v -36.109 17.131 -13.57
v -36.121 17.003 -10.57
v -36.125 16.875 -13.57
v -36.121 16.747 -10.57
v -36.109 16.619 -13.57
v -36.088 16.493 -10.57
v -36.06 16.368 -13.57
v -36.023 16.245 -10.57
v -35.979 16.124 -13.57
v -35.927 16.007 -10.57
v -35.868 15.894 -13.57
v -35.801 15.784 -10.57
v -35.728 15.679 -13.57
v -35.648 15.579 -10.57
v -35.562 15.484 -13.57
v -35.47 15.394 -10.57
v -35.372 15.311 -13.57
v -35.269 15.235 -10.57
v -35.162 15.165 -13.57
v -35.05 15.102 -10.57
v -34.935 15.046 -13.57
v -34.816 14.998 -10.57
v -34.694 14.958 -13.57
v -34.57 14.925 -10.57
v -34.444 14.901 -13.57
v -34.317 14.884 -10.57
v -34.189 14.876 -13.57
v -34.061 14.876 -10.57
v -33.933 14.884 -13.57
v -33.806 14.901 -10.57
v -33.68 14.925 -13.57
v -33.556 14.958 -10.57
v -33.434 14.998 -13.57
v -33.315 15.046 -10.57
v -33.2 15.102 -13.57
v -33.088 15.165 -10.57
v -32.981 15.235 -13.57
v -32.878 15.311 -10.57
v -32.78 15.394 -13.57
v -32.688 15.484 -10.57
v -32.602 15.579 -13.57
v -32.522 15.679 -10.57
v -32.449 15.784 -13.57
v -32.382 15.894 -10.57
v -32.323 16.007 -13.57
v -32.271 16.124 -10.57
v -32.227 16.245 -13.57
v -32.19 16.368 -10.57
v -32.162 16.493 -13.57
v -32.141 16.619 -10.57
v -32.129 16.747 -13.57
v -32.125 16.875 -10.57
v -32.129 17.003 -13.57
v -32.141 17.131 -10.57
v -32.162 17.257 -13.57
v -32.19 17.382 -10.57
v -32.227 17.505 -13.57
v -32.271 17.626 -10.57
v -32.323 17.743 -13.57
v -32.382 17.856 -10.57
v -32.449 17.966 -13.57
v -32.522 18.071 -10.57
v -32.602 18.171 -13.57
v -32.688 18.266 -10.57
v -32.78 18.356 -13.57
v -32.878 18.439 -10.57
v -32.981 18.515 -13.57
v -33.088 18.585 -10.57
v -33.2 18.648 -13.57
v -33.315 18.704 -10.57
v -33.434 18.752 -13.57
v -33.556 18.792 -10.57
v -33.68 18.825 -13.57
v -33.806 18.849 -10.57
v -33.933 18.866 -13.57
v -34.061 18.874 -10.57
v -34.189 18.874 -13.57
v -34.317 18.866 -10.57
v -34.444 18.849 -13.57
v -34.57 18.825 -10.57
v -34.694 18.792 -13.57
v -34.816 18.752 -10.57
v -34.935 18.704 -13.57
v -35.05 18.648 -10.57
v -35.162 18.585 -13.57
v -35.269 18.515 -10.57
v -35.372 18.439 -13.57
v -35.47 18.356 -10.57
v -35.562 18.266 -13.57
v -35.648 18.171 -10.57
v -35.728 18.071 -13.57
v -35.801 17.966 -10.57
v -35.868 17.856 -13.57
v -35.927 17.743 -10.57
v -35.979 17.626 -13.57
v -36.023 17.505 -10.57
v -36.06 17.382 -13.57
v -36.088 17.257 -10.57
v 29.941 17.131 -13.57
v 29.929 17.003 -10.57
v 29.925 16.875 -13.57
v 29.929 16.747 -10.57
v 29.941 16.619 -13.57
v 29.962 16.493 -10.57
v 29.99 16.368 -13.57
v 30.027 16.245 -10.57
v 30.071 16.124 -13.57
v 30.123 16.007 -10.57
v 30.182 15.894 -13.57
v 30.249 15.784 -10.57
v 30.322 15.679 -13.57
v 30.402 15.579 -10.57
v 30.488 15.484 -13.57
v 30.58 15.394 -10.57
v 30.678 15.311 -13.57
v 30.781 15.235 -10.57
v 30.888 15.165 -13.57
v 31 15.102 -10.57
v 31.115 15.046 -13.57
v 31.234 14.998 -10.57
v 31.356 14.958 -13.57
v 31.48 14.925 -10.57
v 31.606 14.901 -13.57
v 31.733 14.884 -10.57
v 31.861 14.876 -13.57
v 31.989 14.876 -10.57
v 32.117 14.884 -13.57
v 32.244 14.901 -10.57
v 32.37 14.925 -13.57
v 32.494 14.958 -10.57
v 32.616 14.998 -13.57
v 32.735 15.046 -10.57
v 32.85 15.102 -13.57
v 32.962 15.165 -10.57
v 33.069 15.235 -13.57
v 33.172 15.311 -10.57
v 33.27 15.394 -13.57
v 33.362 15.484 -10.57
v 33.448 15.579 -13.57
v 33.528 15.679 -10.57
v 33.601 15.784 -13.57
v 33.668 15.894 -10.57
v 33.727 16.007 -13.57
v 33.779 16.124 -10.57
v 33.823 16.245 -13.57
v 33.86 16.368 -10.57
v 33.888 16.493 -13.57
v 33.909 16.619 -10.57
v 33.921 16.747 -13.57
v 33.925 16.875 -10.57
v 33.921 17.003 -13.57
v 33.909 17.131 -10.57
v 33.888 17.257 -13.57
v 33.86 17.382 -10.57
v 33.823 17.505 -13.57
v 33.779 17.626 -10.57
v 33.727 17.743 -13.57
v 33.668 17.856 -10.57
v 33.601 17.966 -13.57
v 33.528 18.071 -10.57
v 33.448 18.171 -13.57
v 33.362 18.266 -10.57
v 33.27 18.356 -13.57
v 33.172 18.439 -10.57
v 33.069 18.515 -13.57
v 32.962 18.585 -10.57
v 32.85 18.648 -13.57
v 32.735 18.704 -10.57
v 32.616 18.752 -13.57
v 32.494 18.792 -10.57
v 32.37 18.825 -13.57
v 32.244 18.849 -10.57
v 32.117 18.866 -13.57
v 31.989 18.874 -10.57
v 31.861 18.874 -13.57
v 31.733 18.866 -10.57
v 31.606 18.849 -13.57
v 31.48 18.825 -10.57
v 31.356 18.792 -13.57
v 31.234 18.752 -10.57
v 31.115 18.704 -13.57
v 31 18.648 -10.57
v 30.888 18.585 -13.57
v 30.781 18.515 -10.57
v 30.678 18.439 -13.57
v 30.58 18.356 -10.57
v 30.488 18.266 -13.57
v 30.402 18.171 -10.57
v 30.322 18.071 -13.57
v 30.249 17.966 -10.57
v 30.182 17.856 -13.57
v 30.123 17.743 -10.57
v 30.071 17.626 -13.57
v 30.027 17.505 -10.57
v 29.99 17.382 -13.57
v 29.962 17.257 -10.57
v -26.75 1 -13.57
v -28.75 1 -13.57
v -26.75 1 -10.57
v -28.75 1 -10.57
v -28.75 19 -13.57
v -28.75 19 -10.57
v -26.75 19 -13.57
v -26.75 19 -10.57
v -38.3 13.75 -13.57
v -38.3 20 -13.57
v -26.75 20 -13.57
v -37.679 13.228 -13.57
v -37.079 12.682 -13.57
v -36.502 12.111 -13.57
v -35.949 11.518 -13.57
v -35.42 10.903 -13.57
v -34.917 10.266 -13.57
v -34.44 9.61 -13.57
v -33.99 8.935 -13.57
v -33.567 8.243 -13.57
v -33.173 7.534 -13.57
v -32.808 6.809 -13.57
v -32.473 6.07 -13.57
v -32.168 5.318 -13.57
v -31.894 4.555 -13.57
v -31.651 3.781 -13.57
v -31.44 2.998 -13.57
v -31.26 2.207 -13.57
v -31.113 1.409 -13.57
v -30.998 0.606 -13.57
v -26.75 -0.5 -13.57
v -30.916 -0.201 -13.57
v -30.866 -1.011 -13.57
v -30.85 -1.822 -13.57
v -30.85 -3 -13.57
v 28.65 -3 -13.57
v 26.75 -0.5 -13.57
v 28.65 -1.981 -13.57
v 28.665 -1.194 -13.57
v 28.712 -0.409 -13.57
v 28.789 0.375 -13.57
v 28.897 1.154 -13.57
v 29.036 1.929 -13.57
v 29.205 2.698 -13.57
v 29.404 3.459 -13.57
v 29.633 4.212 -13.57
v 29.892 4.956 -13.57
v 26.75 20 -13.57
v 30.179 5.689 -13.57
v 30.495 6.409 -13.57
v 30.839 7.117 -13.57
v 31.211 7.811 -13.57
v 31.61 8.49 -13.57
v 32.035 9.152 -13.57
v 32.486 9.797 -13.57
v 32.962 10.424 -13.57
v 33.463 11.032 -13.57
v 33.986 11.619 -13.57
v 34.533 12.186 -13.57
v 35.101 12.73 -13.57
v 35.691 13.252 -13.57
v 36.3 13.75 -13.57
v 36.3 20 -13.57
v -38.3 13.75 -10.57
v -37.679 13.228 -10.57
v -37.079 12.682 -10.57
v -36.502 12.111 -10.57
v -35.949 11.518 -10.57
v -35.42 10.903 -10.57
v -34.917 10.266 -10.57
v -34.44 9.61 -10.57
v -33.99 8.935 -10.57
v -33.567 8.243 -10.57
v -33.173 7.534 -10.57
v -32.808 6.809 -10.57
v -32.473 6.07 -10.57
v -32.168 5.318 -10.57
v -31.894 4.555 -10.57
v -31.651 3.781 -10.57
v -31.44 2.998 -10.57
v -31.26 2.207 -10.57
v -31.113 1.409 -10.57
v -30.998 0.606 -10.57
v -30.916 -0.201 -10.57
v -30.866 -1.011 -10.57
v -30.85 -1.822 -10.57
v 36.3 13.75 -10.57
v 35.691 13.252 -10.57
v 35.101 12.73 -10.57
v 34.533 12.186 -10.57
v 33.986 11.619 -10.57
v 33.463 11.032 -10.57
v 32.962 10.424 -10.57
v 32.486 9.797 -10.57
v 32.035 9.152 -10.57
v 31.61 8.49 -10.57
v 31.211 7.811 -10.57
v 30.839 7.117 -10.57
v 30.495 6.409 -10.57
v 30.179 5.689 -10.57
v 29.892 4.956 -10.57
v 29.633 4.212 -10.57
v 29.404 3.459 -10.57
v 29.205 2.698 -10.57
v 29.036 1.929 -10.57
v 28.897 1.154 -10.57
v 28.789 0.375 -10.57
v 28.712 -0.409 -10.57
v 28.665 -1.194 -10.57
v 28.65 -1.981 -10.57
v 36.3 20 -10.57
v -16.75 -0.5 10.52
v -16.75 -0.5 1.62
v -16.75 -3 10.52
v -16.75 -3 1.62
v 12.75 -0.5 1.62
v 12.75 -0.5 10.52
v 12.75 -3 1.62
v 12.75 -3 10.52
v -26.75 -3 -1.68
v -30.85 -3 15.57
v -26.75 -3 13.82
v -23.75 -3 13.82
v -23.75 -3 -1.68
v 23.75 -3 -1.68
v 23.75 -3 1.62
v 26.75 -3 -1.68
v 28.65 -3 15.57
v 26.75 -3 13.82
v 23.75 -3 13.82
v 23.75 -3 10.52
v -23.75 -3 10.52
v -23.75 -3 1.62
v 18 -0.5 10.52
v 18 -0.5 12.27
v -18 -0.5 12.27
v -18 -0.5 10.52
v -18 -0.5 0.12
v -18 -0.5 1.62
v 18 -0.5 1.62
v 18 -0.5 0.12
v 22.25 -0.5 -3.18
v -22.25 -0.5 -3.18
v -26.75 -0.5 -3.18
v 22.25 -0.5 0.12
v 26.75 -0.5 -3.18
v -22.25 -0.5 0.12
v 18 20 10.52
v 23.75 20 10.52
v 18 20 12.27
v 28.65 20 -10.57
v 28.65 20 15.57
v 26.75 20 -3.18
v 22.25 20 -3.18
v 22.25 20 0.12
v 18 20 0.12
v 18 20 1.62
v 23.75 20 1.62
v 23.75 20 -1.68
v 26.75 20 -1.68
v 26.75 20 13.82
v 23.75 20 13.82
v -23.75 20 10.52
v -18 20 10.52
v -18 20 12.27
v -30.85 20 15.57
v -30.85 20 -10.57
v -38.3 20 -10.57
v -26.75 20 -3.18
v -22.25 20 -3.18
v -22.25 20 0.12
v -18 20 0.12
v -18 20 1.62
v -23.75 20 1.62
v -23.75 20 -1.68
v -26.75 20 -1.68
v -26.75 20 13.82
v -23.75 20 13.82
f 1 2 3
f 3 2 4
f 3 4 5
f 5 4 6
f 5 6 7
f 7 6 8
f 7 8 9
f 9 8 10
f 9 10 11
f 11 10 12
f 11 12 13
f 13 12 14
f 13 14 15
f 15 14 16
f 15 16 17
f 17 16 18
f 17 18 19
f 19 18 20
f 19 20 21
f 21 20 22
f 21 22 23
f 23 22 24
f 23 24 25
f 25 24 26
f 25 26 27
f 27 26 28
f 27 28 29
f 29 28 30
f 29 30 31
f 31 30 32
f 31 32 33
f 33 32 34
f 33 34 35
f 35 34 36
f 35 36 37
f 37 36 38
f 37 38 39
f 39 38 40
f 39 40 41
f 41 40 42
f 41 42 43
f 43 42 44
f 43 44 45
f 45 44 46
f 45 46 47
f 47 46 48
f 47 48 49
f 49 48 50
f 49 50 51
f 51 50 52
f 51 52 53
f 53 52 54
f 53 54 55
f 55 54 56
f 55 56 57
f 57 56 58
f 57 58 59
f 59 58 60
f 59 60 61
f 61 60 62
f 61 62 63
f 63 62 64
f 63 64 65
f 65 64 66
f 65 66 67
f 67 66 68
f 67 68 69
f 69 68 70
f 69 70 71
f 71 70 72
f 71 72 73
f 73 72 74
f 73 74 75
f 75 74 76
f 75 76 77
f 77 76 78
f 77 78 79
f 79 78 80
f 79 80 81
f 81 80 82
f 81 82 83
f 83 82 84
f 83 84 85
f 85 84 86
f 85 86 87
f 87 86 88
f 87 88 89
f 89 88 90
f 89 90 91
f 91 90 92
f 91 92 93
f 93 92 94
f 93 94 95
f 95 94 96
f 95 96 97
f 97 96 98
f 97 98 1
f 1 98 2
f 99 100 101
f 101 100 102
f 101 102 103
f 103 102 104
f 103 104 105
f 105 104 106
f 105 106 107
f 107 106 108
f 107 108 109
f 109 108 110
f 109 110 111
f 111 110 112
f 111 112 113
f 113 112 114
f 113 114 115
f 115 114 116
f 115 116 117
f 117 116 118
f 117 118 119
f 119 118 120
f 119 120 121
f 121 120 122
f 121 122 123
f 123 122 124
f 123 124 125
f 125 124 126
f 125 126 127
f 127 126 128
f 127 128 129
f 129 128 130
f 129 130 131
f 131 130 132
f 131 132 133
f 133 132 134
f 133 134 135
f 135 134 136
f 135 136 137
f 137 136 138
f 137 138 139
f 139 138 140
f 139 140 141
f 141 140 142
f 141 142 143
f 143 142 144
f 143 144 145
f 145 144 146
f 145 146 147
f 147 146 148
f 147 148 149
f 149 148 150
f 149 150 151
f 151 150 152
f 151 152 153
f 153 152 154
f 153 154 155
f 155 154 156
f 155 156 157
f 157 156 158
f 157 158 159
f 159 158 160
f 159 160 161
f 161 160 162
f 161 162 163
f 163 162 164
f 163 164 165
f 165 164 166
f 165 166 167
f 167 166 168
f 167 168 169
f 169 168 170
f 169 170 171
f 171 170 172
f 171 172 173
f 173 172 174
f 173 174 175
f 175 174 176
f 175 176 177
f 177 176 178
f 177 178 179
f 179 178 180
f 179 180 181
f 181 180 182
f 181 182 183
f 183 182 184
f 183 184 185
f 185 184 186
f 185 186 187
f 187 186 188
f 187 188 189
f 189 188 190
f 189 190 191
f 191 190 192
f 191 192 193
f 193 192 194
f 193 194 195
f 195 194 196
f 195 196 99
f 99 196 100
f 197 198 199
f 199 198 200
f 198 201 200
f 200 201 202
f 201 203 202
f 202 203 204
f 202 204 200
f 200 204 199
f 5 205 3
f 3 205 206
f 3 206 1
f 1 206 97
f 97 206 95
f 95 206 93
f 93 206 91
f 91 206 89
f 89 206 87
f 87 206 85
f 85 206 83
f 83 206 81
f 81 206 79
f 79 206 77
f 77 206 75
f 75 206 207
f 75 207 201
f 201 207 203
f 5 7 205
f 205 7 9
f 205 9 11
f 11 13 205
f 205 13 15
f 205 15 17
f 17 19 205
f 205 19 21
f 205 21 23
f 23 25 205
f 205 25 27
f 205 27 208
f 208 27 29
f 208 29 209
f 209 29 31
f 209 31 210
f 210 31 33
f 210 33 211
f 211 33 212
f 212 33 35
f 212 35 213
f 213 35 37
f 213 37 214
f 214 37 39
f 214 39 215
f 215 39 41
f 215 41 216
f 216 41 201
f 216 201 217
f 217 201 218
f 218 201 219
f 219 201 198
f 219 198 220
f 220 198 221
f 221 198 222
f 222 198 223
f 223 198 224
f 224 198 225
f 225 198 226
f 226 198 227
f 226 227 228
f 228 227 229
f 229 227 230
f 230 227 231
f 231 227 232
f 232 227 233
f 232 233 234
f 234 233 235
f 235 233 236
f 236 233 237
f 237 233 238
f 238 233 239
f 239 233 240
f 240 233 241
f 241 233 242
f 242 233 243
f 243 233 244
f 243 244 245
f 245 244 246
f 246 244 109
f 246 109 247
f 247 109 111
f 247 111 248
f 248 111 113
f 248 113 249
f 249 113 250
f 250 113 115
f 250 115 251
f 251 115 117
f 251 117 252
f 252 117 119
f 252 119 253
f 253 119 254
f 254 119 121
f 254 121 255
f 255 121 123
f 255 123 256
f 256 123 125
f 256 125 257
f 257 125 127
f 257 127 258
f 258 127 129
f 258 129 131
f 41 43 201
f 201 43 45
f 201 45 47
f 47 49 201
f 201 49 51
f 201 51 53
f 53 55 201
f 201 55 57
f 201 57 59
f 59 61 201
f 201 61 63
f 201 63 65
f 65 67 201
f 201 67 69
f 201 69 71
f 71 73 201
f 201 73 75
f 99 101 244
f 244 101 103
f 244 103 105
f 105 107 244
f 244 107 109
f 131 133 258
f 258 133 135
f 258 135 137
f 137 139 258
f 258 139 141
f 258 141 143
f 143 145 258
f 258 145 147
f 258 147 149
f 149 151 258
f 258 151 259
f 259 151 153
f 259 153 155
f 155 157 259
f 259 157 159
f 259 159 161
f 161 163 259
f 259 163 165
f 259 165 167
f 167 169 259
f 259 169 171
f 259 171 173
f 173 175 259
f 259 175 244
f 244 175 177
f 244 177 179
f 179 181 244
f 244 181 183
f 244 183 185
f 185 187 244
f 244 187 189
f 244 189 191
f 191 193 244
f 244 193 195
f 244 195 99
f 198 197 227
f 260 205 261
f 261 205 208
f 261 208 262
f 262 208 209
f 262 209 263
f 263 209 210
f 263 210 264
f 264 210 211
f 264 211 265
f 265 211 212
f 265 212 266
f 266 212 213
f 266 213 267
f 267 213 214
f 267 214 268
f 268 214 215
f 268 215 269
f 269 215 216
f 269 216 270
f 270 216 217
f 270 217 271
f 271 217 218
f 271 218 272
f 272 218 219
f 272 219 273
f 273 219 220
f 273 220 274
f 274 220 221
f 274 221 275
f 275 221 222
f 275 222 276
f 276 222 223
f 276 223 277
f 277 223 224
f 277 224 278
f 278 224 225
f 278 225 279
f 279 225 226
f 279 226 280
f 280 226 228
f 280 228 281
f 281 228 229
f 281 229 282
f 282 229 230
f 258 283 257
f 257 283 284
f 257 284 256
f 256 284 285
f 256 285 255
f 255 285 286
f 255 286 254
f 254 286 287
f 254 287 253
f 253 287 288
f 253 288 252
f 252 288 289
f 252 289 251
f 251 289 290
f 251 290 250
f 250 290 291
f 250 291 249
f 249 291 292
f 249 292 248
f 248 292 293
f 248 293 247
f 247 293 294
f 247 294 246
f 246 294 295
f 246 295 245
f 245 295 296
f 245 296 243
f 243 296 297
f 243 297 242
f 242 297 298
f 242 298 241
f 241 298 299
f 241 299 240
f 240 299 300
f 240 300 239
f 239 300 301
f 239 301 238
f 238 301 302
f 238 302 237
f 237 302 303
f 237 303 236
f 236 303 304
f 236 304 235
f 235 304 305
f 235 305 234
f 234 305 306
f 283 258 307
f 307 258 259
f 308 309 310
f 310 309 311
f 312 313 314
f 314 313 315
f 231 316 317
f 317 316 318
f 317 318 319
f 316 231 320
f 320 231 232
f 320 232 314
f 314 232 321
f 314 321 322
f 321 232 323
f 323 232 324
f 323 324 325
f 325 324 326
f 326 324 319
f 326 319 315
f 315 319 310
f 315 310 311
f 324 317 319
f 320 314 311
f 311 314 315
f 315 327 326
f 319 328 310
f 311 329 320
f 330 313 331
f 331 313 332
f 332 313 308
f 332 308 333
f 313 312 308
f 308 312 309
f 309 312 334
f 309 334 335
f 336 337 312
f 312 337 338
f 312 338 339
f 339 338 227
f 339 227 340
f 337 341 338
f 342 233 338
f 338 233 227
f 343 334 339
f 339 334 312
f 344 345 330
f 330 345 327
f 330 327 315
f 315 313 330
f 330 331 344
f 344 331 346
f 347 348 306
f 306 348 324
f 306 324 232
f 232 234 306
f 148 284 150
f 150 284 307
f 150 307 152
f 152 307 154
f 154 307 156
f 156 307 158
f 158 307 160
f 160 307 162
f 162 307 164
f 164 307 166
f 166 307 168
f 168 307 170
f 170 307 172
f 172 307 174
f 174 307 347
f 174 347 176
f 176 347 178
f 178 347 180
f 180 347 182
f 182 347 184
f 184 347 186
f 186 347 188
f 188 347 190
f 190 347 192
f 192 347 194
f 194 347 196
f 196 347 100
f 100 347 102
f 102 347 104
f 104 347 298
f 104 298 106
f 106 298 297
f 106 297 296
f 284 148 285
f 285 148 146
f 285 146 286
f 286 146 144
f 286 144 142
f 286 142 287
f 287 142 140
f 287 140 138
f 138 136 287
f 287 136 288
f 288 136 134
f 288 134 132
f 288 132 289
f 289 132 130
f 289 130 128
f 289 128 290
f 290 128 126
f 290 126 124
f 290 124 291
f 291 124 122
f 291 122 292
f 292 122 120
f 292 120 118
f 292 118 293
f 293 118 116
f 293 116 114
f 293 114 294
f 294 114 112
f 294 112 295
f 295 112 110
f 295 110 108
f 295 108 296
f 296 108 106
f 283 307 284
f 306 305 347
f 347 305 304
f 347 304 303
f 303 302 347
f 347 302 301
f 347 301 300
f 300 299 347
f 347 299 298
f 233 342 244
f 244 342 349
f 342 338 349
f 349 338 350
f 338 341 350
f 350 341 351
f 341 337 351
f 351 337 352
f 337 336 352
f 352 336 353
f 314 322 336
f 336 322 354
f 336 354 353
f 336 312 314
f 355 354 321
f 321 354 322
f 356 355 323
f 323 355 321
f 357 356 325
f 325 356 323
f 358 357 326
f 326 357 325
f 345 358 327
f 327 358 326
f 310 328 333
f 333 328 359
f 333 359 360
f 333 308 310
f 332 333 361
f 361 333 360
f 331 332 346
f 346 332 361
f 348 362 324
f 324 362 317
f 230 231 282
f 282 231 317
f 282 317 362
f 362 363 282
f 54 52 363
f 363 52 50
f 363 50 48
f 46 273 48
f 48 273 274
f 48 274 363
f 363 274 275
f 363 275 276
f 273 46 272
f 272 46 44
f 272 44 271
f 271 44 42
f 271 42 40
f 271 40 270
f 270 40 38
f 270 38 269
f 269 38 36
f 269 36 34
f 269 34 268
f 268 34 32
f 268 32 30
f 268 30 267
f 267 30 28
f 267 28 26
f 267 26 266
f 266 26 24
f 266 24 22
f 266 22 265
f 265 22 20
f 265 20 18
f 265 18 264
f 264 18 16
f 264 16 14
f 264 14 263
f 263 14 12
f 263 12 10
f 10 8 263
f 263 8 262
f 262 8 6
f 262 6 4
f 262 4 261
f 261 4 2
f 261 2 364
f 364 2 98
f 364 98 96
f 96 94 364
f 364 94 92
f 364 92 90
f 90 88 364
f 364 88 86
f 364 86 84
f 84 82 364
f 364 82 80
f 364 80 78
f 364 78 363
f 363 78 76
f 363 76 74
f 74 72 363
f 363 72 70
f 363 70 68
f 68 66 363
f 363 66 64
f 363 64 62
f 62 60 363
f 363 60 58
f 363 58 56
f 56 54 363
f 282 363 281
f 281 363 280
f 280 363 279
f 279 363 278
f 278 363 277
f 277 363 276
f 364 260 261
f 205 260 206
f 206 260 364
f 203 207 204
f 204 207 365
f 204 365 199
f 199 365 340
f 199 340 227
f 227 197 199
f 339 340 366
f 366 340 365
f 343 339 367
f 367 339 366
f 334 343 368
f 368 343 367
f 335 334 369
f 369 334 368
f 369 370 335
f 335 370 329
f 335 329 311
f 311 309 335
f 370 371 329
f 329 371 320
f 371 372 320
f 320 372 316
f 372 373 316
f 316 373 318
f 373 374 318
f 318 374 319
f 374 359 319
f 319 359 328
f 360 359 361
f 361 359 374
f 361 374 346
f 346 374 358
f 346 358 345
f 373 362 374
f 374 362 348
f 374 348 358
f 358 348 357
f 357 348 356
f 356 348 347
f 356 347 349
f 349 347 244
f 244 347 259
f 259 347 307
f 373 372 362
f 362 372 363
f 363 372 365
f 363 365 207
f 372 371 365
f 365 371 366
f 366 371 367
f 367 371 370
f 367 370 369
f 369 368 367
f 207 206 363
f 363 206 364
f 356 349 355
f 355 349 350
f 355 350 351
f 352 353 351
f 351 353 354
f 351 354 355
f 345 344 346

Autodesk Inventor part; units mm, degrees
ref_plane "YZ Plane" through (0, 0, 0) normal (1, 0, 0) x (0, 1, 0)
ref_plane "XZ Plane" through (0, 0, 0) normal (0, 1, 0) x (-1, 0, 0)
ref_plane "XY Plane" through (0, 0, 0) normal (0, 0, 1) x (1, 0, 0)
sketch "Boceto1" plane through (0, 0, 0) normal (0, 1, 0) x (-1, 0, 0)
  line L0 (24, 13.57) -> (26.5, 13.57)
  line L1 (-26.5, 13.57) -> (26.5, -13.57) construction
  line L2 (26.5, 13.57) -> (-26.5, -13.57) construction
  line L3 (24, 13.57) -> (24, 10.27) construction
  line L4 (24, 10.27) -> (20, 10.27) construction
  line L5 (20, 10.27) -> (20, 1.87) construction
  line L6 (20, 1.87) -> (24, 1.87) construction
  line L7 (24, 1.87) -> (24, -1.43) construction
  line L8 (24, -1.43) -> (26.5, -1.43) construction
  line L9 (26.75, -1.68) -> (23.75, -1.68)
  line L10 (23.75, -1.68) -> (23.75, 1.62)
  line L11 (23.75, 1.62) -> (19.5, 1.62)
  line L12 (19.5, 10.52) -> (23.75, 10.52)
  line L13 (23.75, 10.52) -> (23.75, 13.82)
  line L14 (27, 15.57) -> (0, 15.57)
  line L15 (18, 0.12) -> (22.25, 0.12)
  line L16 (22.25, 0.12) -> (22.25, -3.18)
  line L17 (22.25, -3.18) -> (26.75, -3.18)
  line L18 (18, 12.27) -> (0, 12.27)
  line L19 (19.5, 10.52) -> (18, 10.52)
  line L20 (19.5, 1.62) -> (18, 1.62)
  line L21 (27, 15.57) -> (29.75, 15.57)
  line L22 (29.75, 15.57) -> (29.75, -10.57)
  line L23 (29.75, -10.57) -> (36.3, -10.57)
  line L24 (36.3, -10.57) -> (36.3, -13.57)
  line L25 (36.3, -13.57) -> (26.75, -13.57)
  line L26 (0, 12.27) -> (0, 15.57)
  line L27 (23.75, 13.82) -> (26.75, 13.82)
  line L28 (18, 12.27) -> (18, 10.52)
  line L29 (18, 1.62) -> (18, 0.12)
  line L30 (26.75, -13.57) -> (26.75, -3.18)
  line L31 (26.75, -1.68) -> (26.75, 13.82)
  line L32 (26.5, 13.57) -> (26.5, -1.68) construction
  point P0 (0, 0)
  point P1 (23.75, 13.57)
  point P2 (0, 13.57)
  point P3 (27, -12.07)
  dimension "d1" = 27.14
  dimension "d2" = 15
  dimension "d4" = 3.3
  dimension "d5" = 4
  dimension "d6" = 3.3
  dimension "d10" = 0.25
  dimension "d11" = 0.25
  dimension "d12" = 1.5
  dimension "d16" = 3
  dimension "d17" = 29.14
  dimension "d23" = 18
  dimension "d24" = 2
  dimension "d25" = 0.25
  dimension "d27" = 15.57
  dimension "d28" = 29.75
  dimension "d29" = 3.3
  dimension "d30" = 0.25
  dimension "d31" = 20
  dimension "d32" = 6.5
  dimension "d33" = 0.25
  dimension "d34" = 4.25
  dimension "d36" = 0.25
  dimension "d51" = 36.3
extrude "Extrusión1" add sketch "Boceto1" along normal blind 20
mirror "Simetría1" about plane through (0, 0, 0) normal (1, 0, 0) of "Extrusión1"
sketch "Boceto2" plane through (0, 0, 0) normal (0, -1, 0) x (1, 0, 0)
  line L0 (18, 1.62) -> (18, 0.12) projected
  line L1 (18, 1.62) -> (-18, 1.62)
  line L2 (-18, 1.62) -> (-18, 0.12) projected
  line L3 (-18, 0.12) -> (-22.25, 0.12) projected
  line L4 (-22.25, 0.12) -> (-22.25, -3.18) projected
  line L5 (-22.25, -3.18) -> (-26.75, -3.18) projected
  line L6 (-26.75, -3.18) -> (-26.75, -13.57) projected
  line L7 (26.75, -3.18) -> (26.75, -13.57) projected
  line L8 (22.25, -3.18) -> (26.75, -3.18) projected
  line L9 (22.25, 0.12) -> (22.25, -3.18) projected
  line L10 (18, 0.12) -> (22.25, 0.12) projected
  line L11 (26.75, -13.57) -> (36.3, -13.57) projected
  line L12 (36.3, -13.57) -> (36.3, -10.57) projected
  line L13 (-36.3, -10.57) -> (-29.75, -10.57) projected
  line L14 (-36.3, -13.57) -> (-36.3, -10.57) projected
  line L15 (-26.75, -13.57) -> (-36.3, -13.57) projected
  line L16 (23.75, 1.62) -> (18, 1.62) projected
  line L17 (23.75, -1.68) -> (23.75, 1.62) projected
  line L18 (26.75, -1.68) -> (23.75, -1.68) projected
  line L19 (36.3, -10.57) -> (29.75, -10.57) projected
  line L20 (26.75, -1.68) -> (29.75, -1.68)
  line L21 (29.75, -10.57) -> (29.75, 15.57) projected
  line L22 (-23.75, 1.62) -> (-18, 1.62) projected
  line L23 (-23.75, -1.68) -> (-23.75, 1.62) projected
  line L24 (-26.75, -1.68) -> (-23.75, -1.68) projected
  line L25 (-26.75, 13.82) -> (-26.75, -1.68) projected
  line L26 (-26.75, -1.68) -> (-29.75, -1.68)
  line L27 (-29.75, -10.57) -> (-29.75, 15.57) projected
  line L28 (26.75, -13.57) -> (-26.75, -13.57)
  line L29 (-18, 12.27) -> (18, 12.27) projected
  line L30 (12.75, 12.27) -> (12.75, 1.62)
  line L31 (26.75, 13.82) -> (26.75, -1.68) projected
  line L32 (-29.75, 15.57) -> (29.75, 15.57) projected
  line L33 (-16.75, 12.27) -> (-16.75, 1.62)
  line L34 (23.75, 13.82) -> (26.75, 13.82) projected
  line L35 (18, 10.52) -> (23.75, 10.52) projected
  line L36 (23.75, 10.52) -> (23.75, 13.82) projected
  line L37 (18, 12.27) -> (18, 10.52) projected
  line L38 (-23.75, 10.52) -> (-23.75, 13.82) projected
  line L39 (-18, 10.52) -> (-23.75, 10.52) projected
  line L40 (-18, 12.27) -> (-18, 10.52) projected
  line L41 (-18, 12.27) -> (18, 12.27) projected
  line L42 (18, 12.27) -> (18, 10.52) projected
  line L43 (18, 10.52) -> (23.75, 10.52) projected
  line L44 (23.75, 10.52) -> (23.75, 13.82) projected
  line L45 (23.75, 13.82) -> (26.75, 13.82) projected
  line L46 (26.75, 13.82) -> (26.75, -1.68) projected
  line L47 (26.75, -1.68) -> (23.75, -1.68) projected
  line L48 (23.75, -1.68) -> (23.75, 1.62) projected
  line L49 (23.75, 1.62) -> (18, 1.62) projected
  line L50 (18, 1.62) -> (18, 0.12) projected
  line L51 (18, 0.12) -> (22.25, 0.12) projected
  line L52 (22.25, 0.12) -> (22.25, -3.18) projected
  line L53 (22.25, -3.18) -> (26.75, -3.18) projected
  line L54 (26.75, -3.18) -> (26.75, -13.57) projected
  line L55 (26.75, -13.57) -> (36.3, -13.57) projected
  line L56 (36.3, -13.57) -> (36.3, -10.57) projected
  line L57 (36.3, -10.57) -> (29.75, -10.57) projected
  line L58 (29.75, -10.57) -> (29.75, 15.57) projected
  line L59 (-29.75, 15.57) -> (29.75, 15.57) projected
  line L60 (-29.75, -10.57) -> (-29.75, 15.57) projected
  line L61 (-36.3, -10.57) -> (-29.75, -10.57) projected
  line L62 (-36.3, -13.57) -> (-36.3, -10.57) projected
  line L63 (-26.75, -13.57) -> (-36.3, -13.57) projected
  line L64 (-26.75, -3.18) -> (-26.75, -13.57) projected
  line L65 (-22.25, -3.18) -> (-26.75, -3.18) projected
  line L66 (-22.25, 0.12) -> (-22.25, -3.18) projected
  line L67 (-18, 0.12) -> (-22.25, 0.12) projected
  line L68 (-18, 1.62) -> (-18, 0.12) projected
  line L69 (-23.75, 1.62) -> (-18, 1.62) projected
  line L70 (-23.75, -1.68) -> (-23.75, 1.62) projected
  line L71 (-26.75, -1.68) -> (-23.75, -1.68) projected
  line L72 (-26.75, 13.82) -> (-26.75, -1.68) projected
  line L73 (-23.75, 13.82) -> (-26.75, 13.82) projected
  line L74 (18, 10.52) -> (12.75, 10.52)
  line L75 (-18, 10.52) -> (-16.75, 10.52)
  point P0 (0, 0)
  point P1 (0, 1.62)
  point P2 (12.75, 12.27)
  dimension "d42" = 14
  dimension "d43" = 10
extrude "Extrusión2" add sketch "Boceto2" along normal blind 3 contours L16 L17 L18 L20 L21 L19 L12 L11 L7 L8 L9 L10 L0 | L0 L10 L9 L8 L7 L28 L6 L5 L4 L3 L2 L1 | L1 L33 L29 L30 | L30 L29 L37 L74 | L2 L3 L4 L5 L6 L15 L14 L13 L27 L26 L24 L23 L22 | L75 L40 L29 L33 | L29 L40 L39 L38 L73 L25 L26 L27 L32 L21 L20 L31 L34 L36 L35 L37
move faces "Desplazar2" translate (0, -0.5, 0) faces at (4.25, 0, -8.5067)
move faces "Desplazar3" translate (-1.1, 0, 0) faces at (-29.75, 12.3333, 6.8567)
move faces "Desplazar4" translate (-1.1, 0, 0) faces at (29.75, 12.3333, 6.8567)
move faces "Desplazar5" translate (-2, 0, 0) faces at (-36.3, 12.3333, -11.57)
sketch "Boceto5" plane through (-36.3, -3, -10.57) normal (0, 0, 1) x (1, 0, 0)
  line L0 (0, 0) -> (72.6, 0) projected
  line L1 (5.45, 0) -> (5.45, 23) projected
  line L2 (0, 0) -> (5.45, 0)
  line L3 (5.45, 0) -> (5.45, 16.75)
  line L4 (5.45, 16.75) -> (-2, 16.75)
  line L5 (-2, 16.75) -> (-2, 0)
  line L6 (64.95, 23) -> (64.95, 0) projected
  line L7 (64.95, 0) -> (72.6, 0)
  line L8 (72.6, 0) -> (72.6, 16.75)
  line L9 (72.6, 16.75) -> (64.95, 16.75)
  line L10 (64.95, 16.75) -> (64.95, 0)
  line L11 (72.6, 23) -> (64.95, 23) projected
  line L12 (5.45, 0) -> (-2, 0) projected
  point P0 (36.3, 3)
  dimension "d63" = 6.25
extrude "Extrusión5" cut sketch "Boceto5" against normal blind 10
fillet "Empalme2" radius 20 2 edges at (28.65, 13.75, -12.07) (-30.85, 13.75, -12.07)
sketch "Boceto7" plane through (36.3, 20, -13.57) normal (0, 0, -1) x (-1, 0, 0)
  line L0 (65.05, -19) -> (63.05, -19)
  line L1 (63.05, -19) -> (63.05, -1)
  line L2 (63.05, -1) -> (65.05, -1)
  line L3 (65.05, -1) -> (65.05, -19)
  line L4 (63.05, -20.5) -> (9.55, -20.5) projected
  line L5 (63.05, -20.5) -> (63.05, 0) projected
  point P0 (36.3, -20)
  dimension "d75" = 2
  dimension "d76" = 18
  dimension "d77" = 1.5
extrude "Extrusión7" cut sketch "Boceto7" against normal blind 3
sketch "Boceto8" plane through (-38.3, 20, -10.57) normal (0, 0, 1) x (1, 0, 0)
  circle A0 centre (4.175, -3.125) radius 2 projected
  circle A1 centre (70.225, -3.125) radius 2 projected
  circle A2 centre (4.175, -3.125) radius 3
  circle A3 centre (70.225, -3.125) radius 3
  point P0 (38.3, -20)
  dimension "d80" = 6
  dimension "d81" = 6
extrude "Extrusión8" cut sketch "Boceto8" against normal through all contours A0 | A1
equation "\"d6\" = d4"
equation "\"d9\" = d7"
equation "\"d7\" = 0.5"
properties part number "Guía" material "Plástico PC/ABS"
